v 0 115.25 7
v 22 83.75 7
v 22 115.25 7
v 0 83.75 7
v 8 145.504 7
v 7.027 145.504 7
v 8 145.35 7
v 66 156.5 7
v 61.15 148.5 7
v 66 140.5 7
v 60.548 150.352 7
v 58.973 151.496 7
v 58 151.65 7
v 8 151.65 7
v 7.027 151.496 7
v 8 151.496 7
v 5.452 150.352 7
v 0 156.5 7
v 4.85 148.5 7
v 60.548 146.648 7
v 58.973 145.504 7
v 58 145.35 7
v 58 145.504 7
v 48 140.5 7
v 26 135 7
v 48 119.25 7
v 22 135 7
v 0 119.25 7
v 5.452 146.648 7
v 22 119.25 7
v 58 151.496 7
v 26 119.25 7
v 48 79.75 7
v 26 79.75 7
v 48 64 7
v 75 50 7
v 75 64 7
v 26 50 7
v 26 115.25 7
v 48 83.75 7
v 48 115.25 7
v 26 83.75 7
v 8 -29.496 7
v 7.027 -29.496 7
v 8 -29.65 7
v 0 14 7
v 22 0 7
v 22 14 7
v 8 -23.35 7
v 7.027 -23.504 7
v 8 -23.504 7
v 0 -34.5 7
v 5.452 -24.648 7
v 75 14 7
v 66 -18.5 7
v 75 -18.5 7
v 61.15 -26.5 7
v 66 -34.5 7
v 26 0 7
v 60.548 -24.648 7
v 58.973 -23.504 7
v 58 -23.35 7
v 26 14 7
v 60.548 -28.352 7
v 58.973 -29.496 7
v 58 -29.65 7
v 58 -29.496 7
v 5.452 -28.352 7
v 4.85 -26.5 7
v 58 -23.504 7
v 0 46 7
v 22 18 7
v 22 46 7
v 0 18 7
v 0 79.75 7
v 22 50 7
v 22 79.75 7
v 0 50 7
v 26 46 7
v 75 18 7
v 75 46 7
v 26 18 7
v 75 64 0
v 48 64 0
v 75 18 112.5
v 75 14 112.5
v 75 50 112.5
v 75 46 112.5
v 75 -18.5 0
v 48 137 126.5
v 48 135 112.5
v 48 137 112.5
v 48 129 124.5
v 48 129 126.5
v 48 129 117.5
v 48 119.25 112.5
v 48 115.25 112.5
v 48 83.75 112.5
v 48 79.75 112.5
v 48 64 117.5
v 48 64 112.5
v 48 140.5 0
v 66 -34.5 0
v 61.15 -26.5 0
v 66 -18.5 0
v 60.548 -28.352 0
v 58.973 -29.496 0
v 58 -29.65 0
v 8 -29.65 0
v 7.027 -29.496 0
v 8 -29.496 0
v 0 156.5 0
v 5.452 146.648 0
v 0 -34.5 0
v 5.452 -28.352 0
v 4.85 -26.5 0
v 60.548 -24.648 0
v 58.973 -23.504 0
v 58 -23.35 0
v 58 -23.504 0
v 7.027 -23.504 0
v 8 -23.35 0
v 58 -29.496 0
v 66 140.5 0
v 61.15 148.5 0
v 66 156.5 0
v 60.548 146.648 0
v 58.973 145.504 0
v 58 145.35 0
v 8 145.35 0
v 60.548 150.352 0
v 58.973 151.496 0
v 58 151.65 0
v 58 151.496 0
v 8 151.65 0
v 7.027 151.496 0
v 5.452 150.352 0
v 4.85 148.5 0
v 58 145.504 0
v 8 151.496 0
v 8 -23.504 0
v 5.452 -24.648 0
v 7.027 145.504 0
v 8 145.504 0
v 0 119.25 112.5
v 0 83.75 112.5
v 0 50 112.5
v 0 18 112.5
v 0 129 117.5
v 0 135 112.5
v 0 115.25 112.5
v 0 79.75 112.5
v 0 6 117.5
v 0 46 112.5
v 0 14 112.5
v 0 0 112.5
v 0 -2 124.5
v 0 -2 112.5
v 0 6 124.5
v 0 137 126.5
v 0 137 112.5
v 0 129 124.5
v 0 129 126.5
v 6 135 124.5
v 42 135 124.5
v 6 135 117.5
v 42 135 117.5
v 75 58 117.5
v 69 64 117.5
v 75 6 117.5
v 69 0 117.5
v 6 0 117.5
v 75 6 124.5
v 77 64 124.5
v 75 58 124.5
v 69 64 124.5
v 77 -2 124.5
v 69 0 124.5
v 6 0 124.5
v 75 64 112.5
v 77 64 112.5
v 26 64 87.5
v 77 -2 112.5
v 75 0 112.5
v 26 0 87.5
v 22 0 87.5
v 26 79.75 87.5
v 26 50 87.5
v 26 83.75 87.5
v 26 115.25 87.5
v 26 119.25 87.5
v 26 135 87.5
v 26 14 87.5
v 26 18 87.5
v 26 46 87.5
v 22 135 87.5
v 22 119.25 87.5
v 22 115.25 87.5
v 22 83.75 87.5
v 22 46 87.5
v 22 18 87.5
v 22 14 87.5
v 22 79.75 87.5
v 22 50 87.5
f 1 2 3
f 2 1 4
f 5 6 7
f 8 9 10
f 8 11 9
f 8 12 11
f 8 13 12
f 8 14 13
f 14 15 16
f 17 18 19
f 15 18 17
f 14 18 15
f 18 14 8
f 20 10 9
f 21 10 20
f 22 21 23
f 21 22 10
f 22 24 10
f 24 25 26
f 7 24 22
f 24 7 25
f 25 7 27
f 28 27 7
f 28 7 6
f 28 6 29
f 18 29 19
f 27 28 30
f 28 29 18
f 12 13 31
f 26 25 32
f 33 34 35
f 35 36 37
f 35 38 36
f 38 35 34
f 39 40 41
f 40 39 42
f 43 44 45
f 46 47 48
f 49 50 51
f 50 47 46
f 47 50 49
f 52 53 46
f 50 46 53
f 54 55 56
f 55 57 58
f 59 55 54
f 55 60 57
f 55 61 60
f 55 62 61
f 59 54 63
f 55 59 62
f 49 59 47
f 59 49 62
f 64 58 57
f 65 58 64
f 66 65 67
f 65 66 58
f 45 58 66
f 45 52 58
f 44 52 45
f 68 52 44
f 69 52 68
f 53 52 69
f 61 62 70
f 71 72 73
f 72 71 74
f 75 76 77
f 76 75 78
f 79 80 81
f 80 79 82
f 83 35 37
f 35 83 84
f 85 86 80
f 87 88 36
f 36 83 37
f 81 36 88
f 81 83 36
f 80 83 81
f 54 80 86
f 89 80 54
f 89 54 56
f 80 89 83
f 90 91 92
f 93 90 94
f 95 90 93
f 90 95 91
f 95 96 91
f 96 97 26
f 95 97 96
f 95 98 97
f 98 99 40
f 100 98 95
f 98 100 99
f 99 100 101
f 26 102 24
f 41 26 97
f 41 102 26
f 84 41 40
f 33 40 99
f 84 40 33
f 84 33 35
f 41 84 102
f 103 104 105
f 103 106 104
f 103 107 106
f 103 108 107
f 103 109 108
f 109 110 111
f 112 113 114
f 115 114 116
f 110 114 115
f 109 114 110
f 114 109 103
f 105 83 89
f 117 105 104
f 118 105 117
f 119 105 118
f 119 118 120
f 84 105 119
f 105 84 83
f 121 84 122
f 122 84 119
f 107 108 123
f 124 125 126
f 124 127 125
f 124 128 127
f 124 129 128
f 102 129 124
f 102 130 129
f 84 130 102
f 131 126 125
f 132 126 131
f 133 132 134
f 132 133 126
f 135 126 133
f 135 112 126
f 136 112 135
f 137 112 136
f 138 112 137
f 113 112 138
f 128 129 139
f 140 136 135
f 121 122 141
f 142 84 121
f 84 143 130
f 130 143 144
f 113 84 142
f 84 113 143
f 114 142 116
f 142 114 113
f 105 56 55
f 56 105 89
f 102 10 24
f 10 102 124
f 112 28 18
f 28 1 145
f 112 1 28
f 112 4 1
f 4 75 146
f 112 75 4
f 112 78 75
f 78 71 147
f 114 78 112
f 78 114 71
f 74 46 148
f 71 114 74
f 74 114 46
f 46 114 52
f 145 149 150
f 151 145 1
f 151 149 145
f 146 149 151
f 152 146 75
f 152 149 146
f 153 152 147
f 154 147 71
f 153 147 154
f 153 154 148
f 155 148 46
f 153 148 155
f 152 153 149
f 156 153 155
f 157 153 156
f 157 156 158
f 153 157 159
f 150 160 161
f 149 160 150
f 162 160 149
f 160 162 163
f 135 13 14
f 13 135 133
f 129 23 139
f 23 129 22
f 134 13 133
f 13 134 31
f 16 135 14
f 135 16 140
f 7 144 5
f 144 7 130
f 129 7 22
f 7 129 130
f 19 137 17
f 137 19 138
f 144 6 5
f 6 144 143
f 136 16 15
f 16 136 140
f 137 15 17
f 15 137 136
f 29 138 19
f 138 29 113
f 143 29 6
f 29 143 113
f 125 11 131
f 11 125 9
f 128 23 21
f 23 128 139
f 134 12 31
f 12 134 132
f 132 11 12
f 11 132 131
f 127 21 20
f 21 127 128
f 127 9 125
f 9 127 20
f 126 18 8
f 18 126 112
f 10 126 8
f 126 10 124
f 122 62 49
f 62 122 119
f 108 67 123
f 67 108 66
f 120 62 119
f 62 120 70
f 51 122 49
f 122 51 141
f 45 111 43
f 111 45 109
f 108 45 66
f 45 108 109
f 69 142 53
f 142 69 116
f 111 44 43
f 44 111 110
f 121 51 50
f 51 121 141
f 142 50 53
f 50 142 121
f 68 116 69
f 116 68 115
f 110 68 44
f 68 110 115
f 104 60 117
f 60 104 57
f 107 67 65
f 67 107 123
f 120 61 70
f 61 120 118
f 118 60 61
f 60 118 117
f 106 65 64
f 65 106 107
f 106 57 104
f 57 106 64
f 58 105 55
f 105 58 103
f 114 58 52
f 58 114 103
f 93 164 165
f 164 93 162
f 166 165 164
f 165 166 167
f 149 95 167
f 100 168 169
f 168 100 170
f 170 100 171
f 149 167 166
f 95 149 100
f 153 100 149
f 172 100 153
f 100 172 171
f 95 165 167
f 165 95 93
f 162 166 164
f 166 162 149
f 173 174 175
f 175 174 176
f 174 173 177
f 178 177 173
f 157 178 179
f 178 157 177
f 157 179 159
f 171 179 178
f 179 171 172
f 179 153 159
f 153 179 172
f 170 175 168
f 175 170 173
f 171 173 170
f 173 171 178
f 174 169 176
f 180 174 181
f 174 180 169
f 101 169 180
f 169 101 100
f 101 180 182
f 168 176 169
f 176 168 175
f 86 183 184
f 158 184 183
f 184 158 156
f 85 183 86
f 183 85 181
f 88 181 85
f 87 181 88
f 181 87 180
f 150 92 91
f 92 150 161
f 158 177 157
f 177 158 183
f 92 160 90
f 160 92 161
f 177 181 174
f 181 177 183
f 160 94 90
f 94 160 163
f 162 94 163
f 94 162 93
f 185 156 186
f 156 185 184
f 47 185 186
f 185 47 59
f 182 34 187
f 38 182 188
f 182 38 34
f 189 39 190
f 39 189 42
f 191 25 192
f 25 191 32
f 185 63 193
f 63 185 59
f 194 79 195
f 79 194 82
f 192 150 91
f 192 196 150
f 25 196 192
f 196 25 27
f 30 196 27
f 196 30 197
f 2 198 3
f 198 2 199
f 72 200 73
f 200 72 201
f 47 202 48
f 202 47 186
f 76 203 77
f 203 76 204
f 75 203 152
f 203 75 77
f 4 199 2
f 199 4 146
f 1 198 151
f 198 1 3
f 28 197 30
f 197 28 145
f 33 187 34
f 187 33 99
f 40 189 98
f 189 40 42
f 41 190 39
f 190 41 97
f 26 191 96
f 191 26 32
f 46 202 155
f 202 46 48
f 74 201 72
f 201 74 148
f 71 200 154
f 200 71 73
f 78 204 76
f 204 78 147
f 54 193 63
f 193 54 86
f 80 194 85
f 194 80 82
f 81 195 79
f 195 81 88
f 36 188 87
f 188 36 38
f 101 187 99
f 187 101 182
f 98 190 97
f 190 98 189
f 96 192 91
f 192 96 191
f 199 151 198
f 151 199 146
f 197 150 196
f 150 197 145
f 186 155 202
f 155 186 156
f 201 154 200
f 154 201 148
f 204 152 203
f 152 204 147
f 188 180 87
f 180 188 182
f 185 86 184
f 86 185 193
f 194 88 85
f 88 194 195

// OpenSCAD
Beam_hight = 134; //hight of beam center
Beam_grain = 25; //align beam with center of M6 grooves
M6_groove = 6.3; //width of M6 grooves (M6 = 6mm)
M6_wall = 8; //wall for the M6 groove
M6_length = 50; //length of the M6 groove
M6_grid = 25; //distance between M6 holes

Holder_thiccness = 5; //thicness of the projector holder plate
Holder_wall = 2; //thicness of projector holder walls
Holder_wedge = 6; //wedges at the corners of the holder
Beam_side_adjust = 13; //ring outer edge to side of projector
Beam_height_adjust = 6; //ring outer edge to bottom of projector

Base_plate_higth = 7; //thicness of baseplate of projector
Support_wall = 4; //thicness of support structure
Support_heigth = 25; //heigth off angled support

Projector_width = 135; //long side of projector
Projector_width_thicc = 64; //long side at thiccer section
Projector_depth = 48; //short side of projector at thin section
Projector_depth_thicc = 75; //short side of projector at thicc section

// =====================================================
// Derived values
// =====================================================

Plate_hight = Beam_hight - (10.5 + Beam_height_adjust); //hight of plate the projecter will be resting on, beam diameter is 21mm, lens edge is at 6mm
M6_offset = (2 * M6_grid) - (10.5 + Beam_side_adjust); //M6 alignment distance
Plate_base = Plate_hight - Holder_thiccness;
Projecter_depth_outskirt = Projector_depth_thicc - Projector_depth; //how much the thicc section of the projector extends beyond the short section
M6_diameter = M6_groove/2; //M6 hole diameter
Base_start = M6_wall - M6_offset; // attach baseplate to m6 groove
Base_extend = -M6_offset + (7 * M6_grid) - M6_wall; //attach baseplate to m6 groove

Support  = Support_wall / 2; //middle of support wall
Long_support = Projector_depth /2; //middle of thin long pojector side
Thicc_support = Projector_width_thicc /4; //quarter points thicc section
Thicc_support_edge = Long_support-Support+Projecter_depth_outskirt; //extention of the supports at thicc section to the end of the projector
Thin_support = (Projector_width - Projector_width_thicc) /4; //quarter points thin section
Support_angle_base = Plate_base - Support_heigth; //heigth at which angled support start

Wedge_root = sqrt(2* pow(Holder_wedge,2)); //size of cube to cut wedge


// =====================================================
// Projector holder
// =====================================================
module holder ()

{

        {
            // ---------------------------------------------
            // Projector outskirt block
            // ---------------------------------------------
            polyhedron(
                points = [
                    [Projector_depth,0,Plate_hight],    // 0
                    [Projector_depth_thicc,0,Plate_hight],    // 1
                    [Projector_depth_thicc,Projector_width_thicc,Plate_hight],  // 2
                    [Projector_depth,Projector_width_thicc,Plate_hight],  // 3
                    [Projector_depth,0,Plate_base],   // 4
                    [Projector_depth_thicc,0,Plate_base],   // 5
                    [Projector_depth_thicc,Projector_width_thicc,Plate_base], // 6
                    [Projector_depth,Projector_width_thicc,Plate_base]  // 7
                ],
                faces = [
                    [0,2,1], [0,3,2],   // bottom
                    [4,5,6], [4,6,7],   // top
                    [0,1,5], [0,5,4],   // front
                    [1,2,6], [1,6,5],   // right
                    [2,3,7], [2,7,6],   // back
                    [3,0,4], [3,4,7]    // left
                ],
                convexity = 10
            );

            // ---------------------------------------------
            // Projector long block
            // ---------------------------------------------
            polyhedron(
                points = [
                    [0,0,Plate_hight],    // 0
                    [Projector_depth,0,Plate_hight],    // 1
                    [Projector_depth,Projector_width,Plate_hight],  // 2
                    [0,Projector_width,Plate_hight],  // 3
                    [0,0,Plate_base],   // 4
                    [Projector_depth,0,Plate_base],   // 5
                    [Projector_depth,Projector_width,Plate_base], // 6
                    [0,Projector_width,Plate_base]  // 7
                ],
                faces = [
                    [0,2,1], [0,3,2],   // bottom
                    [4,5,6], [4,6,7],   // top
                    [0,1,5], [0,5,4],   // front
                    [1,2,6], [1,6,5],   // right
                    [2,3,7], [2,7,6],   // back
                    [3,0,4], [3,4,7]    // left
                ],
                convexity = 10
            );

            // ---------------------------------------------
            // wedges
            // ---------------------------------------------
            translate([Projector_depth-Holder_wedge,Projector_width-Holder_wedge,Plate_hight])
            difference()
            {
            cube([Holder_wedge,Holder_wedge,Base_plate_higth]);
                
            rotate([0,0,45])
            cube([Wedge_root,Wedge_root,2 * Base_plate_higth],true);   
                
            }

            translate([0,Projector_width-Holder_wedge,Plate_hight])
            difference()
            {
            cube([Holder_wedge,Holder_wedge,Base_plate_higth]);
              
            translate([Holder_wedge,0,0])  
            rotate([0,0,45])
            cube([Wedge_root,Wedge_root,2 * Base_plate_higth],true);   
                
            }
            
            translate([0,0,Plate_hight])
            difference()
            {
            cube([Holder_wedge,Holder_wedge,Base_plate_higth]);
              
            translate([Holder_wedge,Holder_wedge,0])  
            rotate([0,0,45])
            cube([Wedge_root,Wedge_root,2 * Base_plate_higth],true);   
                
            }
            
            translate([Projector_depth_thicc-Holder_wedge,0,Plate_hight])
            difference()
            {
            cube([Holder_wedge,Holder_wedge,Base_plate_higth]);
              
            translate([0,Holder_wedge,0])  
            rotate([0,0,45])
            cube([Wedge_root,Wedge_root,2 * Base_plate_higth],true);   
                
            }

            translate([Projector_depth_thicc-Holder_wedge,Projector_width_thicc-Holder_wedge,Plate_hight])
            difference()
            {
            cube([Holder_wedge,Holder_wedge,Base_plate_higth]);
              
            rotate([0,0,45])
            cube([Wedge_root,Wedge_root,2 * Base_plate_higth],true);   
                
            }
            
                       
            // ---------------------------------------------
            // Rims and top
            // ---------------------------------------------
            
            
                        polyhedron(
                points = [
                    [0,0,Plate_hight+Base_plate_higth],    // 0
                    [Projector_depth_thicc,0,Plate_hight+Base_plate_higth],    // 1
                    [Projector_depth_thicc,-Holder_wall,Plate_hight+Base_plate_higth],  // 2
                    [0,-Holder_wall,Plate_hight+Base_plate_higth],  // 3
                    [0,0,Plate_base],   // 4
                    [Projector_depth_thicc,0,Plate_base],   // 5
                    [Projector_depth_thicc,-Holder_wall,Plate_base], // 6
                    [0,-Holder_wall,Plate_base]  // 7
                ],
                faces = [
                    [0,2,1], [0,3,2],   // bottom
                    [4,5,6], [4,6,7],   // top
                    [0,1,5], [0,5,4],   // front
                    [1,2,6], [1,6,5],   // right
                    [2,3,7], [2,7,6],   // back
                    [3,0,4], [3,4,7]    // left
                ],
                convexity = 10
            );
            
            
                                    polyhedron(
                points = [
                    [0,Projector_width,Plate_hight+Base_plate_higth],    // 0
                    [Projector_depth,Projector_width,Plate_hight+Base_plate_higth],    // 1
                    [Projector_depth,Projector_width+Holder_wall,Plate_hight+Base_plate_higth],  // 2
                    [0,Projector_width+Holder_wall,Plate_hight+Base_plate_higth],  // 3
                    [0,Projector_width,Plate_base],   // 4
                    [Projector_depth,Projector_width,Plate_base],   // 5
                    [Projector_depth,Projector_width+Holder_wall,Plate_base], // 6
                    [0,Projector_width+Holder_wall,Plate_base]  // 7
                ],
                faces = [
                    [0,2,1], [0,3,2],   // bottom
                    [4,5,6], [4,6,7],   // top
                    [0,1,5], [0,5,4],   // front
                    [1,2,6], [1,6,5],   // right
                    [2,3,7], [2,7,6],   // back
                    [3,0,4], [3,4,7]    // left
                ],
                convexity = 10
            );
            
            
                                    polyhedron(
                points = [
                    [Projector_depth_thicc,-Holder_wall,Plate_hight+Base_plate_higth],    // 0
                    [Projector_depth_thicc+Holder_wall,-Holder_wall,Plate_hight+Base_plate_higth],    // 1
                    [Projector_depth_thicc+Holder_wall,Projector_width_thicc,Plate_hight+Base_plate_higth],  // 2
                    [Projector_depth_thicc,Projector_width_thicc,Plate_hight+Base_plate_higth],  // 3
                    [Projector_depth_thicc,-Holder_wall,Plate_base],   // 4
                    [Projector_depth_thicc+Holder_wall,-Holder_wall,Plate_base],   // 5
                    [Projector_depth_thicc+Holder_wall,Projector_width_thicc,Plate_base], // 6
                    [Projector_depth_thicc,Projector_width_thicc,Plate_base]  // 7
                ],
                faces = [
                    [0,2,1], [0,3,2],   // bottom
                    [4,5,6], [4,6,7],   // top
                    [0,1,5], [0,5,4],   // front
                    [1,2,6], [1,6,5],   // right
                    [2,3,7], [2,7,6],   // back
                    [3,0,4], [3,4,7]    // left
                ],
                convexity = 10
            );
            
            
                                                polyhedron(
                points = [
                    [0,Projector_width-Holder_wedge,Plate_hight+Base_plate_higth],    // 0
                    [Projector_depth,Projector_width-Holder_wedge,Plate_hight+Base_plate_higth],    // 1
                    [Projector_depth,Projector_width+Holder_wall,Plate_hight+Base_plate_higth],  // 2
                    [0,Projector_width+Holder_wall,Plate_hight+Base_plate_higth],  // 3
                    [0,Projector_width-Holder_wedge,Plate_hight+Base_plate_higth+Holder_wall],   // 4
                    [Projector_depth,Projector_width-Holder_wedge,Plate_hight+Base_plate_higth+Holder_wall],   // 5
                    [Projector_depth,Projector_width+Holder_wall,Plate_hight+Base_plate_higth+Holder_wall], // 6
                    [0,Projector_width+Holder_wall,Plate_hight+Base_plate_higth+Holder_wall]  // 7
                ],
                faces = [
                    [0,2,1], [0,3,2],   // bottom
                    [4,5,6], [4,6,7],   // top
                    [0,1,5], [0,5,4],   // front
                    [1,2,6], [1,6,5],   // right
                    [2,3,7], [2,7,6],   // back
                    [3,0,4], [3,4,7]    // left
                ],
                convexity = 10
            );
            
            
        }

}

holder ();

// =====================================================
// Base plate
// =====================================================
module base ()

{

        {
            // ---------------------------------------------
            // Projector outskirt block
            // ---------------------------------------------
            polyhedron(
                points = [
                    [Projector_depth,Base_start,Base_plate_higth],    // 0
                    [Projector_depth_thicc,Base_start,Base_plate_higth],    // 1
                    [Projector_depth_thicc,Projector_width_thicc,Base_plate_higth],  // 2
                    [Projector_depth,Projector_width_thicc,Base_plate_higth],  // 3
                    [Projector_depth,Base_start,0],   // 4
                    [Projector_depth_thicc,Base_start,0],   // 5
                    [Projector_depth_thicc,Projector_width_thicc,0], // 6
                    [Projector_depth,Projector_width_thicc,0]  // 7
                ],
                faces = [
                    [0,2,1], [0,3,2],   // bottom
                    [4,5,6], [4,6,7],   // top
                    [0,1,5], [0,5,4],   // front
                    [1,2,6], [1,6,5],   // right
                    [2,3,7], [2,7,6],   // back
                    [3,0,4], [3,4,7]    // left
                ],
                convexity = 10
            );

            // ---------------------------------------------
            // Projector long block
            // ---------------------------------------------
            polyhedron(
                points = [
                    [0,Base_start,Base_plate_higth],    // 0
                    [Projector_depth,Base_start,Base_plate_higth],    // 1
                    [Projector_depth,Base_extend,Base_plate_higth],  // 2
                    [0,Base_extend,Base_plate_higth],  // 3
                    [0,Base_start,0],   // 4
                    [Projector_depth,Base_start,0],   // 5
                    [Projector_depth,Base_extend,0], // 6
                    [0,Base_extend,0]  // 7
                ],
                faces = [
                    [0,2,1], [0,3,2],   // bottom
                    [4,5,6], [4,6,7],   // top
                    [0,1,5], [0,5,4],   // front
                    [1,2,6], [1,6,5],   // right
                    [2,3,7], [2,7,6],   // back
                    [3,0,4], [3,4,7]    // left
                ],
                convexity = 10
            );

        }

}

base ();


// =====================================================
// M6 grooves
// =====================================================
module M6 ()

        // ---------------------------------------------
        // Left block
        // ---------------------------------------------
translate([0,-M6_offset,0]){
    difference()
    {
        // ---------------------------------------------
        // Left block
        // ---------------------------------------------
        polyhedron(
                points = [
                    [0,-M6_wall,Base_plate_higth],    // 0
                    [(2*M6_wall) + M6_length,-M6_wall,Base_plate_higth],    // 1
                    [(2*M6_wall) + M6_length,M6_wall,Base_plate_higth],  // 2
                    [0,M6_wall,Base_plate_higth],  // 3
                    [0,-M6_wall,0],   // 4
                    [(2*M6_wall) + M6_length,-M6_wall,0],   // 5
                    [(2*M6_wall) + M6_length,M6_wall,0], // 6
                    [0,M6_wall,0]  // 7
                ],
                faces = [
                    [0,2,1], [0,3,2],   // bottom
                    [4,5,6], [4,6,7],   // top
                    [0,1,5], [0,5,4],   // front
                    [1,2,6], [1,6,5],   // right
                    [2,3,7], [2,7,6],   // back
                    [3,0,4], [3,4,7]    // left
                ],
                convexity = 10
            );
        
        union()
        {
            // ---------------------------------------------
            // M6 groove
            // ---------------------------------------------
            polyhedron(
                points = [
                    [M6_wall,-M6_diameter,Base_plate_higth],    // 0
                    [M6_wall + M6_length,-M6_diameter,Base_plate_higth],    // 1
                    [M6_wall + M6_length,M6_diameter,Base_plate_higth],  // 2
                    [M6_wall,M6_diameter,Base_plate_higth],  // 3
                    [M6_wall,-M6_diameter,0],   // 4
                    [M6_wall + M6_length,-M6_diameter,0],   // 5
                    [M6_wall + M6_length,M6_diameter,0], // 6
                    [M6_wall,M6_diameter,0]  // 7
                ],
                faces = [
                    [0,2,1], [0,3,2],   // bottom
                    [4,5,6], [4,6,7],   // top
                    [0,1,5], [0,5,4],   // front
                    [1,2,6], [1,6,5],   // right
                    [2,3,7], [2,7,6],   // back
                    [3,0,4], [3,4,7]    // left
                ],
                convexity = 10
            );

            // ---------------------------------------------
            // Front curve
            // ---------------------------------------------
            translate([M6_wall,0,0]){
            cylinder(Base_plate_higth,M6_diameter,M6_diameter);
            }
            // ---------------------------------------------
            // Rear curve
            // ---------------------------------------------
            translate([M6_wall + M6_length,0,0]){
            cylinder(Base_plate_higth,M6_diameter,M6_diameter);
            }
        }


    }
}

translate([0,-M6_offset + (7 * M6_grid),0]){
    difference()
    {
        // ---------------------------------------------
        // Left block
        // ---------------------------------------------
        polyhedron(
                points = [
                    [0,-M6_wall,Base_plate_higth],    // 0
                    [(2*M6_wall) + M6_length,-M6_wall,Base_plate_higth],    // 1
                    [(2*M6_wall) + M6_length,M6_wall,Base_plate_higth],  // 2
                    [0,M6_wall,Base_plate_higth],  // 3
                    [0,-M6_wall,0],   // 4
                    [(2*M6_wall) + M6_length,-M6_wall,0],   // 5
                    [(2*M6_wall) + M6_length,M6_wall,0], // 6
                    [0,M6_wall,0]  // 7
                ],
                faces = [
                    [0,2,1], [0,3,2],   // bottom
                    [4,5,6], [4,6,7],   // top
                    [0,1,5], [0,5,4],   // front
                    [1,2,6], [1,6,5],   // right
                    [2,3,7], [2,7,6],   // back
                    [3,0,4], [3,4,7]    // left
                ],
                convexity = 10
            );
        
        union()
        {
            // ---------------------------------------------
            // M6 groove
            // ---------------------------------------------
            polyhedron(
                points = [
                    [M6_wall,-M6_diameter,Base_plate_higth],    // 0
                    [M6_wall + M6_length,-M6_diameter,Base_plate_higth],    // 1
                    [M6_wall + M6_length,M6_diameter,Base_plate_higth],  // 2
                    [M6_wall,M6_diameter,Base_plate_higth],  // 3
                    [M6_wall,-M6_diameter,0],   // 4
                    [M6_wall + M6_length,-M6_diameter,0],   // 5
                    [M6_wall + M6_length,M6_diameter,0], // 6
                    [M6_wall,M6_diameter,0]  // 7
                ],
                faces = [
                    [0,2,1], [0,3,2],   // bottom
                    [4,5,6], [4,6,7],   // top
                    [0,1,5], [0,5,4],   // front
                    [1,2,6], [1,6,5],   // right
                    [2,3,7], [2,7,6],   // back
                    [3,0,4], [3,4,7]    // left
                ],
                convexity = 10
            );

            // ---------------------------------------------
            // Front curve
            // ---------------------------------------------
            translate([M6_wall,0,0]){
            cylinder(Base_plate_higth,M6_diameter,M6_diameter);
            }
            // ---------------------------------------------
            // Rear curve
            // ---------------------------------------------
            translate([M6_wall + M6_length,0,0]){
            cylinder(Base_plate_higth,M6_diameter,M6_diameter);
            }
        }


    }
}

M6 ();

// =====================================================
// Supports
// =====================================================
module support ()

{

        {
            // ---------------------------------------------
            // long support
            // ---------------------------------------------
            polyhedron(
                points = [
                    [Long_support-Support,0,Base_plate_higth],    // 0
                    [Long_support+Support,0,Base_plate_higth],    // 1
                    [Long_support+Support,Projector_width,Base_plate_higth],  // 2
                    [Long_support-Support,Projector_width,Base_plate_higth],  // 3
                    [Long_support-Support,0,Plate_base],   // 4
                    [Long_support+Support,0,Plate_base],   // 5
                    [Long_support+Support,Projector_width,Plate_base], // 6
                    [Long_support-Support,Projector_width,Plate_base]  // 7
                ],
                faces = [
                    [0,2,1], [0,3,2],   // bottom
                    [4,5,6], [4,6,7],   // top
                    [0,1,5], [0,5,4],   // front
                    [1,2,6], [1,6,5],   // right
                    [2,3,7], [2,7,6],   // back
                    [3,0,4], [3,4,7]    // left
                ],
                convexity = 10
            );

            // ---------------------------------------------
            // Thin supports
            // ---------------------------------------------
            polyhedron(
                points = [
                    [0,Thin_support-Support+Projector_width_thicc,Base_plate_higth],    // 0
                    [Long_support-Support,Thin_support-Support+Projector_width_thicc,Base_plate_higth],    // 1
                    [Long_support-Support,Thin_support+Support+Projector_width_thicc,Base_plate_higth],  // 2
                    [0,Thin_support+Support+Projector_width_thicc,Base_plate_higth],  // 3
                    [0,Thin_support-Support+Projector_width_thicc,Plate_base],   // 4
                    [Long_support-Support,Thin_support-Support+Projector_width_thicc,Plate_base],   // 5
                    [Long_support-Support,Thin_support+Support+Projector_width_thicc,Plate_base], // 6
                    [0,Thin_support+Support+Projector_width_thicc,Plate_base]  // 7
                ],
                faces = [
                    [0,2,1], [0,3,2],   // bottom
                    [4,5,6], [4,6,7],   // top
                    [0,1,5], [0,5,4],   // front
                    [1,2,6], [1,6,5],   // right
                    [2,3,7], [2,7,6],   // back
                    [3,0,4], [3,4,7]    // left
                ],
                convexity = 10
            );
            
            
            translate([0,2*Thin_support,0])
            polyhedron(
                points = [
                    [0,Thin_support-Support+Projector_width_thicc,Base_plate_higth],    // 0
                    [Long_support-Support,Thin_support-Support+Projector_width_thicc,Base_plate_higth],    // 1
                    [Long_support-Support,Thin_support+Support+Projector_width_thicc,Base_plate_higth],  // 2
                    [0,Thin_support+Support+Projector_width_thicc,Base_plate_higth],  // 3
                    [0,Thin_support-Support+Projector_width_thicc,Plate_base],   // 4
                    [Long_support-Support,Thin_support-Support+Projector_width_thicc,Plate_base],   // 5
                    [Long_support-Support,Thin_support+Support+Projector_width_thicc,Plate_base], // 6
                    [0,Thin_support+Support+Projector_width_thicc,Plate_base]  // 7
                ],
                faces = [
                    [0,2,1], [0,3,2],   // bottom
                    [4,5,6], [4,6,7],   // top
                    [0,1,5], [0,5,4],   // front
                    [1,2,6], [1,6,5],   // right
                    [2,3,7], [2,7,6],   // back
                    [3,0,4], [3,4,7]    // left
                ],
                convexity = 10
            );

            translate([Long_support+Support,0,0])
            polyhedron(
                points = [
                    [0,Thin_support-Support+Projector_width_thicc,Base_plate_higth],    // 0
                    [Long_support-Support,Thin_support-Support+Projector_width_thicc,Base_plate_higth],    // 1
                    [Long_support-Support,Thin_support+Support+Projector_width_thicc,Base_plate_higth],  // 2
                    [0,Thin_support+Support+Projector_width_thicc,Base_plate_higth],  // 3
                    [0,Thin_support-Support+Projector_width_thicc,Plate_base],   // 4
                    [Long_support-Support,Thin_support-Support+Projector_width_thicc,Plate_base],   // 5
                    [Long_support-Support,Thin_support+Support+Projector_width_thicc,Plate_base], // 6
                    [0,Thin_support+Support+Projector_width_thicc,Plate_base]  // 7
                ],
                faces = [
                    [0,2,1], [0,3,2],   // bottom
                    [4,5,6], [4,6,7],   // top
                    [0,1,5], [0,5,4],   // front
                    [1,2,6], [1,6,5],   // right
                    [2,3,7], [2,7,6],   // back
                    [3,0,4], [3,4,7]    // left
                ],
                convexity = 10
            );
            
            
            translate([Long_support+Support,2*Thin_support,0])
            polyhedron(
                points = [
                    [0,Thin_support-Support+Projector_width_thicc,Base_plate_higth],    // 0
                    [Long_support-Support,Thin_support-Support+Projector_width_thicc,Base_plate_higth],    // 1
                    [Long_support-Support,Thin_support+Support+Projector_width_thicc,Base_plate_higth],  // 2
                    [0,Thin_support+Support+Projector_width_thicc,Base_plate_higth],  // 3
                    [0,Thin_support-Support+Projector_width_thicc,Plate_base],   // 4
                    [Long_support-Support,Thin_support-Support+Projector_width_thicc,Plate_base],   // 5
                    [Long_support-Support,Thin_support+Support+Projector_width_thicc,Plate_base], // 6
                    [0,Thin_support+Support+Projector_width_thicc,Plate_base]  // 7
                ],
                faces = [
                    [0,2,1], [0,3,2],   // bottom
                    [4,5,6], [4,6,7],   // top
                    [0,1,5], [0,5,4],   // front
                    [1,2,6], [1,6,5],   // right
                    [2,3,7], [2,7,6],   // back
                    [3,0,4], [3,4,7]    // left
                ],
                convexity = 10
            );

            // ---------------------------------------------
            // Thicc supports
            // ---------------------------------------------
            polyhedron(
                points = [
                    [0,Thicc_support-Support,Base_plate_higth],    // 0
                    [Long_support-Support,Thicc_support-Support,Base_plate_higth],    // 1
                    [Long_support-Support,Thicc_support+Support,Base_plate_higth],  // 2
                    [0,Thicc_support+Support,Base_plate_higth],  // 3
                    [0,Thicc_support-Support,Plate_base],   // 4
                    [Long_support-Support,Thicc_support-Support,Plate_base],   // 5
                    [Long_support-Support,Thicc_support+Support,Plate_base], // 6
                    [0,Thicc_support+Support,Plate_base]  // 7
                ],
                faces = [
                    [0,2,1], [0,3,2],   // bottom
                    [4,5,6], [4,6,7],   // top
                    [0,1,5], [0,5,4],   // front
                    [1,2,6], [1,6,5],   // right
                    [2,3,7], [2,7,6],   // back
                    [3,0,4], [3,4,7]    // left
                ],
                convexity = 10
            );
            
            
            translate([0,2*Thicc_support,0])
            polyhedron(
                points = [
                    [0,Thicc_support-Support,Base_plate_higth],    // 0
                    [Long_support-Support,Thicc_support-Support,Base_plate_higth],    // 1
                    [Long_support-Support,Thicc_support+Support,Base_plate_higth],  // 2
                    [0,Thicc_support+Support,Base_plate_higth],  // 3
                    [0,Thicc_support-Support,Plate_base],   // 4
                    [Long_support-Support,Thicc_support-Support,Plate_base],   // 5
                    [Long_support-Support,Thicc_support+Support,Plate_base], // 6
                    [0,Thicc_support+Support,Plate_base]  // 7
                ],
                faces = [
                    [0,2,1], [0,3,2],   // bottom
                    [4,5,6], [4,6,7],   // top
                    [0,1,5], [0,5,4],   // front
                    [1,2,6], [1,6,5],   // right
                    [2,3,7], [2,7,6],   // back
                    [3,0,4], [3,4,7]    // left
                ],
                convexity = 10
            );

            translate([Long_support+Support,0,0])
            polyhedron(
                points = [
                    [0,Thicc_support-Support,Base_plate_higth],    // 0
                    [Thicc_support_edge,Thicc_support-Support,Base_plate_higth],    // 1
                    [Thicc_support_edge,Thicc_support+Support,Base_plate_higth],  // 2
                    [0,Thicc_support+Support,Base_plate_higth],  // 3
                    [0,Thicc_support-Support,Plate_base],   // 4
                    [Thicc_support_edge,Thicc_support-Support,Plate_base],   // 5
                    [Thicc_support_edge,Thicc_support+Support,Plate_base], // 6
                    [0,Thicc_support+Support,Plate_base]  // 7
                ],
                faces = [
                    [0,2,1], [0,3,2],   // bottom
                    [4,5,6], [4,6,7],   // top
                    [0,1,5], [0,5,4],   // front
                    [1,2,6], [1,6,5],   // right
                    [2,3,7], [2,7,6],   // back
                    [3,0,4], [3,4,7]    // left
                ],
                convexity = 10
            );
            
            
            translate([Long_support+Support,2*Thicc_support,0])
            polyhedron(
                points = [
                    [0,Thicc_support-Support,Base_plate_higth],    // 0
                    [Thicc_support_edge,Thicc_support-Support,Base_plate_higth],    // 1
                    [Thicc_support_edge,Thicc_support+Support,Base_plate_higth],  // 2
                    [0,Thicc_support+Support,Base_plate_higth],  // 3
                    [0,Thicc_support-Support,Plate_base],   // 4
                    [Thicc_support_edge,Thicc_support-Support,Plate_base],   // 5
                    [Thicc_support_edge,Thicc_support+Support,Plate_base], // 6
                    [0,Thicc_support+Support,Plate_base]  // 7
                ],
                faces = [
                    [0,2,1], [0,3,2],   // bottom
                    [4,5,6], [4,6,7],   // top
                    [0,1,5], [0,5,4],   // front
                    [1,2,6], [1,6,5],   // right
                    [2,3,7], [2,7,6],   // back
                    [3,0,4], [3,4,7]    // left
                ],
                convexity = 10
            );

            // ---------------------------------------------
            // angled supports
            // ---------------------------------------------

            polyhedron(
                points = [
                    [Long_support-Support,Projector_width_thicc,Support_angle_base],    // 0
                    [Long_support+Support,Projector_width_thicc,Support_angle_base],    // 1
                    [Long_support+Support,Projector_width,Support_angle_base],  // 2
                    [Long_support-Support,Projector_width,Support_angle_base],  // 3
                    [0,Projector_width_thicc,Plate_base],   // 4
                    [Projector_depth,Projector_width_thicc,Plate_base],   // 5
                    [Projector_depth,Projector_width,Plate_base], // 6
                    [0,Projector_width,Plate_base]  // 7
                ],
                faces = [
                    [0,2,1], [0,3,2],   // bottom
                    [4,5,6], [4,6,7],   // top
                    [0,1,5], [0,5,4],   // front
                    [1,2,6], [1,6,5],   // right
                    [2,3,7], [2,7,6],   // back
                    [3,0,4], [3,4,7]    // left
                ],
                convexity = 10
            );
            
            polyhedron(
                points = [
                    [Long_support-Support,Projector_width_thicc,Support_angle_base],    // 0
                    [Long_support+Support,Projector_width_thicc,Support_angle_base],    // 1
                    [Long_support+Support,0,Support_angle_base],  // 2
                    [Long_support-Support,0,Support_angle_base],  // 3
                    [0,Projector_width_thicc,Plate_base],   // 4
                    [Projector_depth_thicc,Projector_width_thicc,Plate_base],   // 5
                    [Projector_depth_thicc,0,Plate_base], // 6
                    [0,0,Plate_base]  // 7
                ],
                faces = [
                    [0,2,1], [0,3,2],   // bottom
                    [4,5,6], [4,6,7],   // top
                    [0,1,5], [0,5,4],   // front
                    [1,2,6], [1,6,5],   // right
                    [2,3,7], [2,7,6],   // back
                    [3,0,4], [3,4,7]    // left
                ],
                convexity = 10
            );

        }

}

support ();
